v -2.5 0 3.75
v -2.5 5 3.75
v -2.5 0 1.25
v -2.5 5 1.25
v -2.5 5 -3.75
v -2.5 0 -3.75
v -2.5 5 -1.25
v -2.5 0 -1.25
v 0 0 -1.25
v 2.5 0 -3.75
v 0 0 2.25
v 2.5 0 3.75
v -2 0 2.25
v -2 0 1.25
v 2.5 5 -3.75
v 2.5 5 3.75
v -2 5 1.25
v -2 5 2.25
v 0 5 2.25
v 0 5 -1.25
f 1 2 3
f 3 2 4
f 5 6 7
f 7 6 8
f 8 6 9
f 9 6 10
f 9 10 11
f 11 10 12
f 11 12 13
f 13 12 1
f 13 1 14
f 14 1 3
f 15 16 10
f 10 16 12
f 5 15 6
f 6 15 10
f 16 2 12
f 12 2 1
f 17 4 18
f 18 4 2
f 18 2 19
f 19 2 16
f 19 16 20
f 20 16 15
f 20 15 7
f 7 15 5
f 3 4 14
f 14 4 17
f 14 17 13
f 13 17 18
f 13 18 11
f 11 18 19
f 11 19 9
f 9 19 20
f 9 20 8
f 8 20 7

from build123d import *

# Parameters (mm, degrees)
SKETCH2_W               = 5
SKETCH2_H               = 7.5
BOSS_EXTRUDE1_DEPTH     = 5
CUT_EXTRUDE1_DEPTH      = 7.731456009
CUT_EXTRUDE1_DEPTH_BACK = 5


with BuildPart() as part:
    # Sketch2 → Boss-Extrude1 (new body)
    with BuildSketch(Plane(origin=(0, 0, 0), x_dir=(1, 0, 0), z_dir=(0, 1, 0))):
        Rectangle(SKETCH2_W, SKETCH2_H)
    extrude(amount=BOSS_EXTRUDE1_DEPTH)

    # Sketch3 → Cut-Extrude1 (cut, two sides: drawn at the far end of the back side and taken through both)
    with BuildSketch(Plane.XZ.offset(-CUT_EXTRUDE1_DEPTH_BACK)):
        Polygon((-26.642135624, -1.25), (-2.5, -1.25), (0, -1.25), (0, 2.25), (-2, 2.25), (-2, 1.25), (-2.5, 1.25), (-26.642135624, 1.25), (-74.926406871, 1.25), (-74.926406871, -1.25), align=None)
    extrude(amount=CUT_EXTRUDE1_DEPTH + CUT_EXTRUDE1_DEPTH_BACK, mode=Mode.SUBTRACT)


solid = part.part
